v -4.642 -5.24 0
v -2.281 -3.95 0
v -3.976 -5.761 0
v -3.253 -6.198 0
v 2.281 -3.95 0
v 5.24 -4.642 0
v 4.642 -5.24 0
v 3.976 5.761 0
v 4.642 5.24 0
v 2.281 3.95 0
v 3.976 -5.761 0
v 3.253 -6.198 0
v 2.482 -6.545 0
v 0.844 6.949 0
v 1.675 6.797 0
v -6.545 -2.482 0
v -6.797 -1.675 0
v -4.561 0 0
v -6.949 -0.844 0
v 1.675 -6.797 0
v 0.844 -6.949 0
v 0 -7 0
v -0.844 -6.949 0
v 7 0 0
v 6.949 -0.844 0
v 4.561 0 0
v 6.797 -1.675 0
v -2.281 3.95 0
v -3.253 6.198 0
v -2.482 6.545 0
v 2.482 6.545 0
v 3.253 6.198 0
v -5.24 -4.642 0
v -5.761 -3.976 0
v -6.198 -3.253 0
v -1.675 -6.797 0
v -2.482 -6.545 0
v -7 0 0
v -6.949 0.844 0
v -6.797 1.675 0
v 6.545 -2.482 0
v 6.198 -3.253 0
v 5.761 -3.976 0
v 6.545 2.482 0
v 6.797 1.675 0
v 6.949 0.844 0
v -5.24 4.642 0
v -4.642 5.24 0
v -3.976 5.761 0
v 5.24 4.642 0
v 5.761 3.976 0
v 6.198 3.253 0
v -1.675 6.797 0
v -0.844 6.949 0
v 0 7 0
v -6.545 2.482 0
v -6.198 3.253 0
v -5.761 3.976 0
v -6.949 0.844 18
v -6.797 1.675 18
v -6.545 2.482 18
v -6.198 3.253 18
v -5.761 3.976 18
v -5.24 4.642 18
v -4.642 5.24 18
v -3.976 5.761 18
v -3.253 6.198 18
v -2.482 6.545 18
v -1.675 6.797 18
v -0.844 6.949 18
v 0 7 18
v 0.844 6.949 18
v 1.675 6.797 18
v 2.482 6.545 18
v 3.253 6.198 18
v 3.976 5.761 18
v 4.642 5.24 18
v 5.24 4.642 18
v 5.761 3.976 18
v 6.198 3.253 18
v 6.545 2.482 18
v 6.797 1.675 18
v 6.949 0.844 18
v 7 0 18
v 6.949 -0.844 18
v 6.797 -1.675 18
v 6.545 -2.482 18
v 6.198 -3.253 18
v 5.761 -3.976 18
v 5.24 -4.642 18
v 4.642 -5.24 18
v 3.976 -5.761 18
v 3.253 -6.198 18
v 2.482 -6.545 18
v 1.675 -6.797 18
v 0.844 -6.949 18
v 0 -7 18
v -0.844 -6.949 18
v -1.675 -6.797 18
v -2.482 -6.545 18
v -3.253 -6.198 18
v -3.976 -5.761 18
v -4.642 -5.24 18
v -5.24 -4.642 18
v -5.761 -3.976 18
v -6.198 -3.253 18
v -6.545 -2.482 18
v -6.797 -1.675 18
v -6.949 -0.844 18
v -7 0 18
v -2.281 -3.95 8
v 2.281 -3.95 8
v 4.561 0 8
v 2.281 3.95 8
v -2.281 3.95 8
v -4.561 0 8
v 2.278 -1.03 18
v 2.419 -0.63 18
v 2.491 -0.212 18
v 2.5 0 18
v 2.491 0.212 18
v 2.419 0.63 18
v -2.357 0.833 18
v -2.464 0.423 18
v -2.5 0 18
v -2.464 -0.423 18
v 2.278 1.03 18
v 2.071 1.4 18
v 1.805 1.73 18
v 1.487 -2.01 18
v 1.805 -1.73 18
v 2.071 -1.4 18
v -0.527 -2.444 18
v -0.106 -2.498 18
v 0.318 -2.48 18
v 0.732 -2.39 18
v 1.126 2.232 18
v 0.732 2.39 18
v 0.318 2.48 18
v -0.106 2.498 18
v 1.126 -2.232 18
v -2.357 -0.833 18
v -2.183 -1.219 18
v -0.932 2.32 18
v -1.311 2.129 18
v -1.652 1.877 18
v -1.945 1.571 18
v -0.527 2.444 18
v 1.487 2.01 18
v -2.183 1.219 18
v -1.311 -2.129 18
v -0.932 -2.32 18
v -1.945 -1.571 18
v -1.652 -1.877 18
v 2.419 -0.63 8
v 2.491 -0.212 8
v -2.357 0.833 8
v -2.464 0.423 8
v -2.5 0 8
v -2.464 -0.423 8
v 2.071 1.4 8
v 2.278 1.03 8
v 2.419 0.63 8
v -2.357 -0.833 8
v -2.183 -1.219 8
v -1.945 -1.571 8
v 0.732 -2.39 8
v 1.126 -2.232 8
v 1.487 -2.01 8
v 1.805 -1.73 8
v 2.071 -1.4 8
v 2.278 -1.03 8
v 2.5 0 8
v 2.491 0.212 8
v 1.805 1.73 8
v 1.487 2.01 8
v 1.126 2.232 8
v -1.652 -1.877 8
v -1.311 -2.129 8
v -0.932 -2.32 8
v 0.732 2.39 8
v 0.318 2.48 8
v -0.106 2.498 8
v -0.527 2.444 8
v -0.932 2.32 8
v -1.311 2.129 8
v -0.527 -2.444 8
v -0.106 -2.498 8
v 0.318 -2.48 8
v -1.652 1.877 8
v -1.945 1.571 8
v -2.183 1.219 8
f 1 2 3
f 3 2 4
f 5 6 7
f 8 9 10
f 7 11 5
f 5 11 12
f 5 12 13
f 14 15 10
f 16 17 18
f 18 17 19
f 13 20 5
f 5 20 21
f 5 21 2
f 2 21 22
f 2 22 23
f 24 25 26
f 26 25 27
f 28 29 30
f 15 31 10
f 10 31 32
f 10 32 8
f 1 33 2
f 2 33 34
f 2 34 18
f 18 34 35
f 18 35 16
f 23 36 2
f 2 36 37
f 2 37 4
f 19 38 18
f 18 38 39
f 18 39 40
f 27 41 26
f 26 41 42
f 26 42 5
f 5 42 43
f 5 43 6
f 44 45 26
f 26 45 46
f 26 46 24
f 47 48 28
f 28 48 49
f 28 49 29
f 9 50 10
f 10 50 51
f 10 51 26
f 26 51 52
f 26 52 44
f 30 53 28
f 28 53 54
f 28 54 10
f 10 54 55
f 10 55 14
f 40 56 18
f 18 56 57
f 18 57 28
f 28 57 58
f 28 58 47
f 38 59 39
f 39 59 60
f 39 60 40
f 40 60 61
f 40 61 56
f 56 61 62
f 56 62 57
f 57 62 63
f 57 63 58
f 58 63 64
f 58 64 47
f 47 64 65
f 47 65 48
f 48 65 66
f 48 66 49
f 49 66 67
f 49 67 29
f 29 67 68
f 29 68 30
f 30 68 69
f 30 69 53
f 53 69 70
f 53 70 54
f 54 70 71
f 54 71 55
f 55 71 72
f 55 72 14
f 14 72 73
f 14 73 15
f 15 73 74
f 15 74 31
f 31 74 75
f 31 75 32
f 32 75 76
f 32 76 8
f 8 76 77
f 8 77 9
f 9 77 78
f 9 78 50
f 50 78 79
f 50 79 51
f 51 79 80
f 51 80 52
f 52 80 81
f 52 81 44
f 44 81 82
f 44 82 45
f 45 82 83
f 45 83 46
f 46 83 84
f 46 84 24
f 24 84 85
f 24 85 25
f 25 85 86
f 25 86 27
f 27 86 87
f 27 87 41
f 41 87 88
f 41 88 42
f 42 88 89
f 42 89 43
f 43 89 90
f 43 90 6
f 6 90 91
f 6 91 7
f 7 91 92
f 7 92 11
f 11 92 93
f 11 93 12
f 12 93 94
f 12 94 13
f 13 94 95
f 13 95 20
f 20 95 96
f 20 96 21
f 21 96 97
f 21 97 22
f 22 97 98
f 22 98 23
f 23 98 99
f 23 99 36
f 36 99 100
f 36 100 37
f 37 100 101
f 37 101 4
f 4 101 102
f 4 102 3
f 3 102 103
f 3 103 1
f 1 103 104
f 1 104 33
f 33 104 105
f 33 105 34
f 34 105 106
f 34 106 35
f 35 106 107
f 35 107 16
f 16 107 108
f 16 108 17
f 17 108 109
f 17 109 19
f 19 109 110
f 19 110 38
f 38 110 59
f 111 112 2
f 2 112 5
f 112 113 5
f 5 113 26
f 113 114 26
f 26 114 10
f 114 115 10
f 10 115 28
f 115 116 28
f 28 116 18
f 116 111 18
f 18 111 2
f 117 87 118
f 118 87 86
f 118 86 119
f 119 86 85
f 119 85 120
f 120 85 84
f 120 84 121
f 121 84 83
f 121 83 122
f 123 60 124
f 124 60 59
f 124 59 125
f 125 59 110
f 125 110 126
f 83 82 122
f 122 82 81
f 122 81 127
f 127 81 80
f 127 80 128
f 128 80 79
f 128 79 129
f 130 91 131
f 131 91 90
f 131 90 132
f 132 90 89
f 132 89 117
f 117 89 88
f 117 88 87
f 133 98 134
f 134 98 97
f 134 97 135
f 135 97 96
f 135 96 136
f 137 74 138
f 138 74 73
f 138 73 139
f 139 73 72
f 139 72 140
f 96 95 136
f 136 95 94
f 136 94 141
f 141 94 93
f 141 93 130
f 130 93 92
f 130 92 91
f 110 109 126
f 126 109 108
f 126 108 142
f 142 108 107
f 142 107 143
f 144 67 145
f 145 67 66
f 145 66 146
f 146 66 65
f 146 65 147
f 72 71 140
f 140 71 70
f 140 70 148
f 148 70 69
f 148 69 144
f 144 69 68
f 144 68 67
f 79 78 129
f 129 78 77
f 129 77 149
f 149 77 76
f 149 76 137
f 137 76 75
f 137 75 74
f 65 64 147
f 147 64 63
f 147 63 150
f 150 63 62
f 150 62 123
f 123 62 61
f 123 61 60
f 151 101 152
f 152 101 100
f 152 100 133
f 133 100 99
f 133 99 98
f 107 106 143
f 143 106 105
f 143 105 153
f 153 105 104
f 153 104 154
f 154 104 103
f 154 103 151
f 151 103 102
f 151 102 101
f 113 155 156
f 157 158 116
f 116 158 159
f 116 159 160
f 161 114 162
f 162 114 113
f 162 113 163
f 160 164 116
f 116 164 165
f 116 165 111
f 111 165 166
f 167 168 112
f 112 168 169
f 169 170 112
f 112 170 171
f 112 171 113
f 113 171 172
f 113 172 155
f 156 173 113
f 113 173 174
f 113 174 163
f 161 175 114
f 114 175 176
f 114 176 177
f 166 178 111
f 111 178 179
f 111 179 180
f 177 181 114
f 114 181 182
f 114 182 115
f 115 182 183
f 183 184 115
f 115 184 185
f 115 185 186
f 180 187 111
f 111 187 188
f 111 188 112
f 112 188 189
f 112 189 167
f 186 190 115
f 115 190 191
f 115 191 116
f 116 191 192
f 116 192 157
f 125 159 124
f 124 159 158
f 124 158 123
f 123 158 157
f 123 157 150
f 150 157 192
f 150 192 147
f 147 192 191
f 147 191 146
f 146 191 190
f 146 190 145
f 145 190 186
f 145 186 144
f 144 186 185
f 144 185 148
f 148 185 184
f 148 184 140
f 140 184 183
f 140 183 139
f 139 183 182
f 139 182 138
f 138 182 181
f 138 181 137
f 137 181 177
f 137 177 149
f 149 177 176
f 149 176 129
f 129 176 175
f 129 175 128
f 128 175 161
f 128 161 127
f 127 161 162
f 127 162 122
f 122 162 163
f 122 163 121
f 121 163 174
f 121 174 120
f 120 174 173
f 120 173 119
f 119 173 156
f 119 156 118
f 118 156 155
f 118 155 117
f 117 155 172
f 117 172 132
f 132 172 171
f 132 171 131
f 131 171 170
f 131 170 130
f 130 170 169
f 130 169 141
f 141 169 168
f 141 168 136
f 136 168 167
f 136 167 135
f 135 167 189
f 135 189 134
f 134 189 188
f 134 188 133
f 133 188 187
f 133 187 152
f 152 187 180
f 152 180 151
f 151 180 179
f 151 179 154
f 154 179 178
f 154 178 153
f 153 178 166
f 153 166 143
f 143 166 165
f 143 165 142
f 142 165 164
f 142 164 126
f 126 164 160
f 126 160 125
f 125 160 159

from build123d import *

# Parameters (mm, degrees)
SKETCH_1_R      = 7
EXTRUDE_1_DEPTH = 8
SKETCH_2_R      = 7
SKETCH_2_R_2    = 2.5
EXTRUDE_2_DEPTH = 10


with BuildPart() as part:
    # Эскиз1 → Бобышка-Вытянуть1 (new body)
    with BuildSketch(Plane.XY):
        Circle(SKETCH_1_R)
        Polygon((2.280533563, -3.95), (4.561067127, 0), (2.280533563, 3.95), (-2.280533563, 3.95), (-4.561067127, 0), (-2.280533563, -3.95), align=None, mode=Mode.SUBTRACT)
    extrude(amount=EXTRUDE_1_DEPTH)

    # Эскиз2 → Бобышка-Вытянуть2 (add)
    with BuildSketch(Plane.XY.offset(8)):
        Circle(SKETCH_2_R)
        Circle(SKETCH_2_R_2, mode=Mode.SUBTRACT)
    extrude(amount=EXTRUDE_2_DEPTH)


solid = part.part
